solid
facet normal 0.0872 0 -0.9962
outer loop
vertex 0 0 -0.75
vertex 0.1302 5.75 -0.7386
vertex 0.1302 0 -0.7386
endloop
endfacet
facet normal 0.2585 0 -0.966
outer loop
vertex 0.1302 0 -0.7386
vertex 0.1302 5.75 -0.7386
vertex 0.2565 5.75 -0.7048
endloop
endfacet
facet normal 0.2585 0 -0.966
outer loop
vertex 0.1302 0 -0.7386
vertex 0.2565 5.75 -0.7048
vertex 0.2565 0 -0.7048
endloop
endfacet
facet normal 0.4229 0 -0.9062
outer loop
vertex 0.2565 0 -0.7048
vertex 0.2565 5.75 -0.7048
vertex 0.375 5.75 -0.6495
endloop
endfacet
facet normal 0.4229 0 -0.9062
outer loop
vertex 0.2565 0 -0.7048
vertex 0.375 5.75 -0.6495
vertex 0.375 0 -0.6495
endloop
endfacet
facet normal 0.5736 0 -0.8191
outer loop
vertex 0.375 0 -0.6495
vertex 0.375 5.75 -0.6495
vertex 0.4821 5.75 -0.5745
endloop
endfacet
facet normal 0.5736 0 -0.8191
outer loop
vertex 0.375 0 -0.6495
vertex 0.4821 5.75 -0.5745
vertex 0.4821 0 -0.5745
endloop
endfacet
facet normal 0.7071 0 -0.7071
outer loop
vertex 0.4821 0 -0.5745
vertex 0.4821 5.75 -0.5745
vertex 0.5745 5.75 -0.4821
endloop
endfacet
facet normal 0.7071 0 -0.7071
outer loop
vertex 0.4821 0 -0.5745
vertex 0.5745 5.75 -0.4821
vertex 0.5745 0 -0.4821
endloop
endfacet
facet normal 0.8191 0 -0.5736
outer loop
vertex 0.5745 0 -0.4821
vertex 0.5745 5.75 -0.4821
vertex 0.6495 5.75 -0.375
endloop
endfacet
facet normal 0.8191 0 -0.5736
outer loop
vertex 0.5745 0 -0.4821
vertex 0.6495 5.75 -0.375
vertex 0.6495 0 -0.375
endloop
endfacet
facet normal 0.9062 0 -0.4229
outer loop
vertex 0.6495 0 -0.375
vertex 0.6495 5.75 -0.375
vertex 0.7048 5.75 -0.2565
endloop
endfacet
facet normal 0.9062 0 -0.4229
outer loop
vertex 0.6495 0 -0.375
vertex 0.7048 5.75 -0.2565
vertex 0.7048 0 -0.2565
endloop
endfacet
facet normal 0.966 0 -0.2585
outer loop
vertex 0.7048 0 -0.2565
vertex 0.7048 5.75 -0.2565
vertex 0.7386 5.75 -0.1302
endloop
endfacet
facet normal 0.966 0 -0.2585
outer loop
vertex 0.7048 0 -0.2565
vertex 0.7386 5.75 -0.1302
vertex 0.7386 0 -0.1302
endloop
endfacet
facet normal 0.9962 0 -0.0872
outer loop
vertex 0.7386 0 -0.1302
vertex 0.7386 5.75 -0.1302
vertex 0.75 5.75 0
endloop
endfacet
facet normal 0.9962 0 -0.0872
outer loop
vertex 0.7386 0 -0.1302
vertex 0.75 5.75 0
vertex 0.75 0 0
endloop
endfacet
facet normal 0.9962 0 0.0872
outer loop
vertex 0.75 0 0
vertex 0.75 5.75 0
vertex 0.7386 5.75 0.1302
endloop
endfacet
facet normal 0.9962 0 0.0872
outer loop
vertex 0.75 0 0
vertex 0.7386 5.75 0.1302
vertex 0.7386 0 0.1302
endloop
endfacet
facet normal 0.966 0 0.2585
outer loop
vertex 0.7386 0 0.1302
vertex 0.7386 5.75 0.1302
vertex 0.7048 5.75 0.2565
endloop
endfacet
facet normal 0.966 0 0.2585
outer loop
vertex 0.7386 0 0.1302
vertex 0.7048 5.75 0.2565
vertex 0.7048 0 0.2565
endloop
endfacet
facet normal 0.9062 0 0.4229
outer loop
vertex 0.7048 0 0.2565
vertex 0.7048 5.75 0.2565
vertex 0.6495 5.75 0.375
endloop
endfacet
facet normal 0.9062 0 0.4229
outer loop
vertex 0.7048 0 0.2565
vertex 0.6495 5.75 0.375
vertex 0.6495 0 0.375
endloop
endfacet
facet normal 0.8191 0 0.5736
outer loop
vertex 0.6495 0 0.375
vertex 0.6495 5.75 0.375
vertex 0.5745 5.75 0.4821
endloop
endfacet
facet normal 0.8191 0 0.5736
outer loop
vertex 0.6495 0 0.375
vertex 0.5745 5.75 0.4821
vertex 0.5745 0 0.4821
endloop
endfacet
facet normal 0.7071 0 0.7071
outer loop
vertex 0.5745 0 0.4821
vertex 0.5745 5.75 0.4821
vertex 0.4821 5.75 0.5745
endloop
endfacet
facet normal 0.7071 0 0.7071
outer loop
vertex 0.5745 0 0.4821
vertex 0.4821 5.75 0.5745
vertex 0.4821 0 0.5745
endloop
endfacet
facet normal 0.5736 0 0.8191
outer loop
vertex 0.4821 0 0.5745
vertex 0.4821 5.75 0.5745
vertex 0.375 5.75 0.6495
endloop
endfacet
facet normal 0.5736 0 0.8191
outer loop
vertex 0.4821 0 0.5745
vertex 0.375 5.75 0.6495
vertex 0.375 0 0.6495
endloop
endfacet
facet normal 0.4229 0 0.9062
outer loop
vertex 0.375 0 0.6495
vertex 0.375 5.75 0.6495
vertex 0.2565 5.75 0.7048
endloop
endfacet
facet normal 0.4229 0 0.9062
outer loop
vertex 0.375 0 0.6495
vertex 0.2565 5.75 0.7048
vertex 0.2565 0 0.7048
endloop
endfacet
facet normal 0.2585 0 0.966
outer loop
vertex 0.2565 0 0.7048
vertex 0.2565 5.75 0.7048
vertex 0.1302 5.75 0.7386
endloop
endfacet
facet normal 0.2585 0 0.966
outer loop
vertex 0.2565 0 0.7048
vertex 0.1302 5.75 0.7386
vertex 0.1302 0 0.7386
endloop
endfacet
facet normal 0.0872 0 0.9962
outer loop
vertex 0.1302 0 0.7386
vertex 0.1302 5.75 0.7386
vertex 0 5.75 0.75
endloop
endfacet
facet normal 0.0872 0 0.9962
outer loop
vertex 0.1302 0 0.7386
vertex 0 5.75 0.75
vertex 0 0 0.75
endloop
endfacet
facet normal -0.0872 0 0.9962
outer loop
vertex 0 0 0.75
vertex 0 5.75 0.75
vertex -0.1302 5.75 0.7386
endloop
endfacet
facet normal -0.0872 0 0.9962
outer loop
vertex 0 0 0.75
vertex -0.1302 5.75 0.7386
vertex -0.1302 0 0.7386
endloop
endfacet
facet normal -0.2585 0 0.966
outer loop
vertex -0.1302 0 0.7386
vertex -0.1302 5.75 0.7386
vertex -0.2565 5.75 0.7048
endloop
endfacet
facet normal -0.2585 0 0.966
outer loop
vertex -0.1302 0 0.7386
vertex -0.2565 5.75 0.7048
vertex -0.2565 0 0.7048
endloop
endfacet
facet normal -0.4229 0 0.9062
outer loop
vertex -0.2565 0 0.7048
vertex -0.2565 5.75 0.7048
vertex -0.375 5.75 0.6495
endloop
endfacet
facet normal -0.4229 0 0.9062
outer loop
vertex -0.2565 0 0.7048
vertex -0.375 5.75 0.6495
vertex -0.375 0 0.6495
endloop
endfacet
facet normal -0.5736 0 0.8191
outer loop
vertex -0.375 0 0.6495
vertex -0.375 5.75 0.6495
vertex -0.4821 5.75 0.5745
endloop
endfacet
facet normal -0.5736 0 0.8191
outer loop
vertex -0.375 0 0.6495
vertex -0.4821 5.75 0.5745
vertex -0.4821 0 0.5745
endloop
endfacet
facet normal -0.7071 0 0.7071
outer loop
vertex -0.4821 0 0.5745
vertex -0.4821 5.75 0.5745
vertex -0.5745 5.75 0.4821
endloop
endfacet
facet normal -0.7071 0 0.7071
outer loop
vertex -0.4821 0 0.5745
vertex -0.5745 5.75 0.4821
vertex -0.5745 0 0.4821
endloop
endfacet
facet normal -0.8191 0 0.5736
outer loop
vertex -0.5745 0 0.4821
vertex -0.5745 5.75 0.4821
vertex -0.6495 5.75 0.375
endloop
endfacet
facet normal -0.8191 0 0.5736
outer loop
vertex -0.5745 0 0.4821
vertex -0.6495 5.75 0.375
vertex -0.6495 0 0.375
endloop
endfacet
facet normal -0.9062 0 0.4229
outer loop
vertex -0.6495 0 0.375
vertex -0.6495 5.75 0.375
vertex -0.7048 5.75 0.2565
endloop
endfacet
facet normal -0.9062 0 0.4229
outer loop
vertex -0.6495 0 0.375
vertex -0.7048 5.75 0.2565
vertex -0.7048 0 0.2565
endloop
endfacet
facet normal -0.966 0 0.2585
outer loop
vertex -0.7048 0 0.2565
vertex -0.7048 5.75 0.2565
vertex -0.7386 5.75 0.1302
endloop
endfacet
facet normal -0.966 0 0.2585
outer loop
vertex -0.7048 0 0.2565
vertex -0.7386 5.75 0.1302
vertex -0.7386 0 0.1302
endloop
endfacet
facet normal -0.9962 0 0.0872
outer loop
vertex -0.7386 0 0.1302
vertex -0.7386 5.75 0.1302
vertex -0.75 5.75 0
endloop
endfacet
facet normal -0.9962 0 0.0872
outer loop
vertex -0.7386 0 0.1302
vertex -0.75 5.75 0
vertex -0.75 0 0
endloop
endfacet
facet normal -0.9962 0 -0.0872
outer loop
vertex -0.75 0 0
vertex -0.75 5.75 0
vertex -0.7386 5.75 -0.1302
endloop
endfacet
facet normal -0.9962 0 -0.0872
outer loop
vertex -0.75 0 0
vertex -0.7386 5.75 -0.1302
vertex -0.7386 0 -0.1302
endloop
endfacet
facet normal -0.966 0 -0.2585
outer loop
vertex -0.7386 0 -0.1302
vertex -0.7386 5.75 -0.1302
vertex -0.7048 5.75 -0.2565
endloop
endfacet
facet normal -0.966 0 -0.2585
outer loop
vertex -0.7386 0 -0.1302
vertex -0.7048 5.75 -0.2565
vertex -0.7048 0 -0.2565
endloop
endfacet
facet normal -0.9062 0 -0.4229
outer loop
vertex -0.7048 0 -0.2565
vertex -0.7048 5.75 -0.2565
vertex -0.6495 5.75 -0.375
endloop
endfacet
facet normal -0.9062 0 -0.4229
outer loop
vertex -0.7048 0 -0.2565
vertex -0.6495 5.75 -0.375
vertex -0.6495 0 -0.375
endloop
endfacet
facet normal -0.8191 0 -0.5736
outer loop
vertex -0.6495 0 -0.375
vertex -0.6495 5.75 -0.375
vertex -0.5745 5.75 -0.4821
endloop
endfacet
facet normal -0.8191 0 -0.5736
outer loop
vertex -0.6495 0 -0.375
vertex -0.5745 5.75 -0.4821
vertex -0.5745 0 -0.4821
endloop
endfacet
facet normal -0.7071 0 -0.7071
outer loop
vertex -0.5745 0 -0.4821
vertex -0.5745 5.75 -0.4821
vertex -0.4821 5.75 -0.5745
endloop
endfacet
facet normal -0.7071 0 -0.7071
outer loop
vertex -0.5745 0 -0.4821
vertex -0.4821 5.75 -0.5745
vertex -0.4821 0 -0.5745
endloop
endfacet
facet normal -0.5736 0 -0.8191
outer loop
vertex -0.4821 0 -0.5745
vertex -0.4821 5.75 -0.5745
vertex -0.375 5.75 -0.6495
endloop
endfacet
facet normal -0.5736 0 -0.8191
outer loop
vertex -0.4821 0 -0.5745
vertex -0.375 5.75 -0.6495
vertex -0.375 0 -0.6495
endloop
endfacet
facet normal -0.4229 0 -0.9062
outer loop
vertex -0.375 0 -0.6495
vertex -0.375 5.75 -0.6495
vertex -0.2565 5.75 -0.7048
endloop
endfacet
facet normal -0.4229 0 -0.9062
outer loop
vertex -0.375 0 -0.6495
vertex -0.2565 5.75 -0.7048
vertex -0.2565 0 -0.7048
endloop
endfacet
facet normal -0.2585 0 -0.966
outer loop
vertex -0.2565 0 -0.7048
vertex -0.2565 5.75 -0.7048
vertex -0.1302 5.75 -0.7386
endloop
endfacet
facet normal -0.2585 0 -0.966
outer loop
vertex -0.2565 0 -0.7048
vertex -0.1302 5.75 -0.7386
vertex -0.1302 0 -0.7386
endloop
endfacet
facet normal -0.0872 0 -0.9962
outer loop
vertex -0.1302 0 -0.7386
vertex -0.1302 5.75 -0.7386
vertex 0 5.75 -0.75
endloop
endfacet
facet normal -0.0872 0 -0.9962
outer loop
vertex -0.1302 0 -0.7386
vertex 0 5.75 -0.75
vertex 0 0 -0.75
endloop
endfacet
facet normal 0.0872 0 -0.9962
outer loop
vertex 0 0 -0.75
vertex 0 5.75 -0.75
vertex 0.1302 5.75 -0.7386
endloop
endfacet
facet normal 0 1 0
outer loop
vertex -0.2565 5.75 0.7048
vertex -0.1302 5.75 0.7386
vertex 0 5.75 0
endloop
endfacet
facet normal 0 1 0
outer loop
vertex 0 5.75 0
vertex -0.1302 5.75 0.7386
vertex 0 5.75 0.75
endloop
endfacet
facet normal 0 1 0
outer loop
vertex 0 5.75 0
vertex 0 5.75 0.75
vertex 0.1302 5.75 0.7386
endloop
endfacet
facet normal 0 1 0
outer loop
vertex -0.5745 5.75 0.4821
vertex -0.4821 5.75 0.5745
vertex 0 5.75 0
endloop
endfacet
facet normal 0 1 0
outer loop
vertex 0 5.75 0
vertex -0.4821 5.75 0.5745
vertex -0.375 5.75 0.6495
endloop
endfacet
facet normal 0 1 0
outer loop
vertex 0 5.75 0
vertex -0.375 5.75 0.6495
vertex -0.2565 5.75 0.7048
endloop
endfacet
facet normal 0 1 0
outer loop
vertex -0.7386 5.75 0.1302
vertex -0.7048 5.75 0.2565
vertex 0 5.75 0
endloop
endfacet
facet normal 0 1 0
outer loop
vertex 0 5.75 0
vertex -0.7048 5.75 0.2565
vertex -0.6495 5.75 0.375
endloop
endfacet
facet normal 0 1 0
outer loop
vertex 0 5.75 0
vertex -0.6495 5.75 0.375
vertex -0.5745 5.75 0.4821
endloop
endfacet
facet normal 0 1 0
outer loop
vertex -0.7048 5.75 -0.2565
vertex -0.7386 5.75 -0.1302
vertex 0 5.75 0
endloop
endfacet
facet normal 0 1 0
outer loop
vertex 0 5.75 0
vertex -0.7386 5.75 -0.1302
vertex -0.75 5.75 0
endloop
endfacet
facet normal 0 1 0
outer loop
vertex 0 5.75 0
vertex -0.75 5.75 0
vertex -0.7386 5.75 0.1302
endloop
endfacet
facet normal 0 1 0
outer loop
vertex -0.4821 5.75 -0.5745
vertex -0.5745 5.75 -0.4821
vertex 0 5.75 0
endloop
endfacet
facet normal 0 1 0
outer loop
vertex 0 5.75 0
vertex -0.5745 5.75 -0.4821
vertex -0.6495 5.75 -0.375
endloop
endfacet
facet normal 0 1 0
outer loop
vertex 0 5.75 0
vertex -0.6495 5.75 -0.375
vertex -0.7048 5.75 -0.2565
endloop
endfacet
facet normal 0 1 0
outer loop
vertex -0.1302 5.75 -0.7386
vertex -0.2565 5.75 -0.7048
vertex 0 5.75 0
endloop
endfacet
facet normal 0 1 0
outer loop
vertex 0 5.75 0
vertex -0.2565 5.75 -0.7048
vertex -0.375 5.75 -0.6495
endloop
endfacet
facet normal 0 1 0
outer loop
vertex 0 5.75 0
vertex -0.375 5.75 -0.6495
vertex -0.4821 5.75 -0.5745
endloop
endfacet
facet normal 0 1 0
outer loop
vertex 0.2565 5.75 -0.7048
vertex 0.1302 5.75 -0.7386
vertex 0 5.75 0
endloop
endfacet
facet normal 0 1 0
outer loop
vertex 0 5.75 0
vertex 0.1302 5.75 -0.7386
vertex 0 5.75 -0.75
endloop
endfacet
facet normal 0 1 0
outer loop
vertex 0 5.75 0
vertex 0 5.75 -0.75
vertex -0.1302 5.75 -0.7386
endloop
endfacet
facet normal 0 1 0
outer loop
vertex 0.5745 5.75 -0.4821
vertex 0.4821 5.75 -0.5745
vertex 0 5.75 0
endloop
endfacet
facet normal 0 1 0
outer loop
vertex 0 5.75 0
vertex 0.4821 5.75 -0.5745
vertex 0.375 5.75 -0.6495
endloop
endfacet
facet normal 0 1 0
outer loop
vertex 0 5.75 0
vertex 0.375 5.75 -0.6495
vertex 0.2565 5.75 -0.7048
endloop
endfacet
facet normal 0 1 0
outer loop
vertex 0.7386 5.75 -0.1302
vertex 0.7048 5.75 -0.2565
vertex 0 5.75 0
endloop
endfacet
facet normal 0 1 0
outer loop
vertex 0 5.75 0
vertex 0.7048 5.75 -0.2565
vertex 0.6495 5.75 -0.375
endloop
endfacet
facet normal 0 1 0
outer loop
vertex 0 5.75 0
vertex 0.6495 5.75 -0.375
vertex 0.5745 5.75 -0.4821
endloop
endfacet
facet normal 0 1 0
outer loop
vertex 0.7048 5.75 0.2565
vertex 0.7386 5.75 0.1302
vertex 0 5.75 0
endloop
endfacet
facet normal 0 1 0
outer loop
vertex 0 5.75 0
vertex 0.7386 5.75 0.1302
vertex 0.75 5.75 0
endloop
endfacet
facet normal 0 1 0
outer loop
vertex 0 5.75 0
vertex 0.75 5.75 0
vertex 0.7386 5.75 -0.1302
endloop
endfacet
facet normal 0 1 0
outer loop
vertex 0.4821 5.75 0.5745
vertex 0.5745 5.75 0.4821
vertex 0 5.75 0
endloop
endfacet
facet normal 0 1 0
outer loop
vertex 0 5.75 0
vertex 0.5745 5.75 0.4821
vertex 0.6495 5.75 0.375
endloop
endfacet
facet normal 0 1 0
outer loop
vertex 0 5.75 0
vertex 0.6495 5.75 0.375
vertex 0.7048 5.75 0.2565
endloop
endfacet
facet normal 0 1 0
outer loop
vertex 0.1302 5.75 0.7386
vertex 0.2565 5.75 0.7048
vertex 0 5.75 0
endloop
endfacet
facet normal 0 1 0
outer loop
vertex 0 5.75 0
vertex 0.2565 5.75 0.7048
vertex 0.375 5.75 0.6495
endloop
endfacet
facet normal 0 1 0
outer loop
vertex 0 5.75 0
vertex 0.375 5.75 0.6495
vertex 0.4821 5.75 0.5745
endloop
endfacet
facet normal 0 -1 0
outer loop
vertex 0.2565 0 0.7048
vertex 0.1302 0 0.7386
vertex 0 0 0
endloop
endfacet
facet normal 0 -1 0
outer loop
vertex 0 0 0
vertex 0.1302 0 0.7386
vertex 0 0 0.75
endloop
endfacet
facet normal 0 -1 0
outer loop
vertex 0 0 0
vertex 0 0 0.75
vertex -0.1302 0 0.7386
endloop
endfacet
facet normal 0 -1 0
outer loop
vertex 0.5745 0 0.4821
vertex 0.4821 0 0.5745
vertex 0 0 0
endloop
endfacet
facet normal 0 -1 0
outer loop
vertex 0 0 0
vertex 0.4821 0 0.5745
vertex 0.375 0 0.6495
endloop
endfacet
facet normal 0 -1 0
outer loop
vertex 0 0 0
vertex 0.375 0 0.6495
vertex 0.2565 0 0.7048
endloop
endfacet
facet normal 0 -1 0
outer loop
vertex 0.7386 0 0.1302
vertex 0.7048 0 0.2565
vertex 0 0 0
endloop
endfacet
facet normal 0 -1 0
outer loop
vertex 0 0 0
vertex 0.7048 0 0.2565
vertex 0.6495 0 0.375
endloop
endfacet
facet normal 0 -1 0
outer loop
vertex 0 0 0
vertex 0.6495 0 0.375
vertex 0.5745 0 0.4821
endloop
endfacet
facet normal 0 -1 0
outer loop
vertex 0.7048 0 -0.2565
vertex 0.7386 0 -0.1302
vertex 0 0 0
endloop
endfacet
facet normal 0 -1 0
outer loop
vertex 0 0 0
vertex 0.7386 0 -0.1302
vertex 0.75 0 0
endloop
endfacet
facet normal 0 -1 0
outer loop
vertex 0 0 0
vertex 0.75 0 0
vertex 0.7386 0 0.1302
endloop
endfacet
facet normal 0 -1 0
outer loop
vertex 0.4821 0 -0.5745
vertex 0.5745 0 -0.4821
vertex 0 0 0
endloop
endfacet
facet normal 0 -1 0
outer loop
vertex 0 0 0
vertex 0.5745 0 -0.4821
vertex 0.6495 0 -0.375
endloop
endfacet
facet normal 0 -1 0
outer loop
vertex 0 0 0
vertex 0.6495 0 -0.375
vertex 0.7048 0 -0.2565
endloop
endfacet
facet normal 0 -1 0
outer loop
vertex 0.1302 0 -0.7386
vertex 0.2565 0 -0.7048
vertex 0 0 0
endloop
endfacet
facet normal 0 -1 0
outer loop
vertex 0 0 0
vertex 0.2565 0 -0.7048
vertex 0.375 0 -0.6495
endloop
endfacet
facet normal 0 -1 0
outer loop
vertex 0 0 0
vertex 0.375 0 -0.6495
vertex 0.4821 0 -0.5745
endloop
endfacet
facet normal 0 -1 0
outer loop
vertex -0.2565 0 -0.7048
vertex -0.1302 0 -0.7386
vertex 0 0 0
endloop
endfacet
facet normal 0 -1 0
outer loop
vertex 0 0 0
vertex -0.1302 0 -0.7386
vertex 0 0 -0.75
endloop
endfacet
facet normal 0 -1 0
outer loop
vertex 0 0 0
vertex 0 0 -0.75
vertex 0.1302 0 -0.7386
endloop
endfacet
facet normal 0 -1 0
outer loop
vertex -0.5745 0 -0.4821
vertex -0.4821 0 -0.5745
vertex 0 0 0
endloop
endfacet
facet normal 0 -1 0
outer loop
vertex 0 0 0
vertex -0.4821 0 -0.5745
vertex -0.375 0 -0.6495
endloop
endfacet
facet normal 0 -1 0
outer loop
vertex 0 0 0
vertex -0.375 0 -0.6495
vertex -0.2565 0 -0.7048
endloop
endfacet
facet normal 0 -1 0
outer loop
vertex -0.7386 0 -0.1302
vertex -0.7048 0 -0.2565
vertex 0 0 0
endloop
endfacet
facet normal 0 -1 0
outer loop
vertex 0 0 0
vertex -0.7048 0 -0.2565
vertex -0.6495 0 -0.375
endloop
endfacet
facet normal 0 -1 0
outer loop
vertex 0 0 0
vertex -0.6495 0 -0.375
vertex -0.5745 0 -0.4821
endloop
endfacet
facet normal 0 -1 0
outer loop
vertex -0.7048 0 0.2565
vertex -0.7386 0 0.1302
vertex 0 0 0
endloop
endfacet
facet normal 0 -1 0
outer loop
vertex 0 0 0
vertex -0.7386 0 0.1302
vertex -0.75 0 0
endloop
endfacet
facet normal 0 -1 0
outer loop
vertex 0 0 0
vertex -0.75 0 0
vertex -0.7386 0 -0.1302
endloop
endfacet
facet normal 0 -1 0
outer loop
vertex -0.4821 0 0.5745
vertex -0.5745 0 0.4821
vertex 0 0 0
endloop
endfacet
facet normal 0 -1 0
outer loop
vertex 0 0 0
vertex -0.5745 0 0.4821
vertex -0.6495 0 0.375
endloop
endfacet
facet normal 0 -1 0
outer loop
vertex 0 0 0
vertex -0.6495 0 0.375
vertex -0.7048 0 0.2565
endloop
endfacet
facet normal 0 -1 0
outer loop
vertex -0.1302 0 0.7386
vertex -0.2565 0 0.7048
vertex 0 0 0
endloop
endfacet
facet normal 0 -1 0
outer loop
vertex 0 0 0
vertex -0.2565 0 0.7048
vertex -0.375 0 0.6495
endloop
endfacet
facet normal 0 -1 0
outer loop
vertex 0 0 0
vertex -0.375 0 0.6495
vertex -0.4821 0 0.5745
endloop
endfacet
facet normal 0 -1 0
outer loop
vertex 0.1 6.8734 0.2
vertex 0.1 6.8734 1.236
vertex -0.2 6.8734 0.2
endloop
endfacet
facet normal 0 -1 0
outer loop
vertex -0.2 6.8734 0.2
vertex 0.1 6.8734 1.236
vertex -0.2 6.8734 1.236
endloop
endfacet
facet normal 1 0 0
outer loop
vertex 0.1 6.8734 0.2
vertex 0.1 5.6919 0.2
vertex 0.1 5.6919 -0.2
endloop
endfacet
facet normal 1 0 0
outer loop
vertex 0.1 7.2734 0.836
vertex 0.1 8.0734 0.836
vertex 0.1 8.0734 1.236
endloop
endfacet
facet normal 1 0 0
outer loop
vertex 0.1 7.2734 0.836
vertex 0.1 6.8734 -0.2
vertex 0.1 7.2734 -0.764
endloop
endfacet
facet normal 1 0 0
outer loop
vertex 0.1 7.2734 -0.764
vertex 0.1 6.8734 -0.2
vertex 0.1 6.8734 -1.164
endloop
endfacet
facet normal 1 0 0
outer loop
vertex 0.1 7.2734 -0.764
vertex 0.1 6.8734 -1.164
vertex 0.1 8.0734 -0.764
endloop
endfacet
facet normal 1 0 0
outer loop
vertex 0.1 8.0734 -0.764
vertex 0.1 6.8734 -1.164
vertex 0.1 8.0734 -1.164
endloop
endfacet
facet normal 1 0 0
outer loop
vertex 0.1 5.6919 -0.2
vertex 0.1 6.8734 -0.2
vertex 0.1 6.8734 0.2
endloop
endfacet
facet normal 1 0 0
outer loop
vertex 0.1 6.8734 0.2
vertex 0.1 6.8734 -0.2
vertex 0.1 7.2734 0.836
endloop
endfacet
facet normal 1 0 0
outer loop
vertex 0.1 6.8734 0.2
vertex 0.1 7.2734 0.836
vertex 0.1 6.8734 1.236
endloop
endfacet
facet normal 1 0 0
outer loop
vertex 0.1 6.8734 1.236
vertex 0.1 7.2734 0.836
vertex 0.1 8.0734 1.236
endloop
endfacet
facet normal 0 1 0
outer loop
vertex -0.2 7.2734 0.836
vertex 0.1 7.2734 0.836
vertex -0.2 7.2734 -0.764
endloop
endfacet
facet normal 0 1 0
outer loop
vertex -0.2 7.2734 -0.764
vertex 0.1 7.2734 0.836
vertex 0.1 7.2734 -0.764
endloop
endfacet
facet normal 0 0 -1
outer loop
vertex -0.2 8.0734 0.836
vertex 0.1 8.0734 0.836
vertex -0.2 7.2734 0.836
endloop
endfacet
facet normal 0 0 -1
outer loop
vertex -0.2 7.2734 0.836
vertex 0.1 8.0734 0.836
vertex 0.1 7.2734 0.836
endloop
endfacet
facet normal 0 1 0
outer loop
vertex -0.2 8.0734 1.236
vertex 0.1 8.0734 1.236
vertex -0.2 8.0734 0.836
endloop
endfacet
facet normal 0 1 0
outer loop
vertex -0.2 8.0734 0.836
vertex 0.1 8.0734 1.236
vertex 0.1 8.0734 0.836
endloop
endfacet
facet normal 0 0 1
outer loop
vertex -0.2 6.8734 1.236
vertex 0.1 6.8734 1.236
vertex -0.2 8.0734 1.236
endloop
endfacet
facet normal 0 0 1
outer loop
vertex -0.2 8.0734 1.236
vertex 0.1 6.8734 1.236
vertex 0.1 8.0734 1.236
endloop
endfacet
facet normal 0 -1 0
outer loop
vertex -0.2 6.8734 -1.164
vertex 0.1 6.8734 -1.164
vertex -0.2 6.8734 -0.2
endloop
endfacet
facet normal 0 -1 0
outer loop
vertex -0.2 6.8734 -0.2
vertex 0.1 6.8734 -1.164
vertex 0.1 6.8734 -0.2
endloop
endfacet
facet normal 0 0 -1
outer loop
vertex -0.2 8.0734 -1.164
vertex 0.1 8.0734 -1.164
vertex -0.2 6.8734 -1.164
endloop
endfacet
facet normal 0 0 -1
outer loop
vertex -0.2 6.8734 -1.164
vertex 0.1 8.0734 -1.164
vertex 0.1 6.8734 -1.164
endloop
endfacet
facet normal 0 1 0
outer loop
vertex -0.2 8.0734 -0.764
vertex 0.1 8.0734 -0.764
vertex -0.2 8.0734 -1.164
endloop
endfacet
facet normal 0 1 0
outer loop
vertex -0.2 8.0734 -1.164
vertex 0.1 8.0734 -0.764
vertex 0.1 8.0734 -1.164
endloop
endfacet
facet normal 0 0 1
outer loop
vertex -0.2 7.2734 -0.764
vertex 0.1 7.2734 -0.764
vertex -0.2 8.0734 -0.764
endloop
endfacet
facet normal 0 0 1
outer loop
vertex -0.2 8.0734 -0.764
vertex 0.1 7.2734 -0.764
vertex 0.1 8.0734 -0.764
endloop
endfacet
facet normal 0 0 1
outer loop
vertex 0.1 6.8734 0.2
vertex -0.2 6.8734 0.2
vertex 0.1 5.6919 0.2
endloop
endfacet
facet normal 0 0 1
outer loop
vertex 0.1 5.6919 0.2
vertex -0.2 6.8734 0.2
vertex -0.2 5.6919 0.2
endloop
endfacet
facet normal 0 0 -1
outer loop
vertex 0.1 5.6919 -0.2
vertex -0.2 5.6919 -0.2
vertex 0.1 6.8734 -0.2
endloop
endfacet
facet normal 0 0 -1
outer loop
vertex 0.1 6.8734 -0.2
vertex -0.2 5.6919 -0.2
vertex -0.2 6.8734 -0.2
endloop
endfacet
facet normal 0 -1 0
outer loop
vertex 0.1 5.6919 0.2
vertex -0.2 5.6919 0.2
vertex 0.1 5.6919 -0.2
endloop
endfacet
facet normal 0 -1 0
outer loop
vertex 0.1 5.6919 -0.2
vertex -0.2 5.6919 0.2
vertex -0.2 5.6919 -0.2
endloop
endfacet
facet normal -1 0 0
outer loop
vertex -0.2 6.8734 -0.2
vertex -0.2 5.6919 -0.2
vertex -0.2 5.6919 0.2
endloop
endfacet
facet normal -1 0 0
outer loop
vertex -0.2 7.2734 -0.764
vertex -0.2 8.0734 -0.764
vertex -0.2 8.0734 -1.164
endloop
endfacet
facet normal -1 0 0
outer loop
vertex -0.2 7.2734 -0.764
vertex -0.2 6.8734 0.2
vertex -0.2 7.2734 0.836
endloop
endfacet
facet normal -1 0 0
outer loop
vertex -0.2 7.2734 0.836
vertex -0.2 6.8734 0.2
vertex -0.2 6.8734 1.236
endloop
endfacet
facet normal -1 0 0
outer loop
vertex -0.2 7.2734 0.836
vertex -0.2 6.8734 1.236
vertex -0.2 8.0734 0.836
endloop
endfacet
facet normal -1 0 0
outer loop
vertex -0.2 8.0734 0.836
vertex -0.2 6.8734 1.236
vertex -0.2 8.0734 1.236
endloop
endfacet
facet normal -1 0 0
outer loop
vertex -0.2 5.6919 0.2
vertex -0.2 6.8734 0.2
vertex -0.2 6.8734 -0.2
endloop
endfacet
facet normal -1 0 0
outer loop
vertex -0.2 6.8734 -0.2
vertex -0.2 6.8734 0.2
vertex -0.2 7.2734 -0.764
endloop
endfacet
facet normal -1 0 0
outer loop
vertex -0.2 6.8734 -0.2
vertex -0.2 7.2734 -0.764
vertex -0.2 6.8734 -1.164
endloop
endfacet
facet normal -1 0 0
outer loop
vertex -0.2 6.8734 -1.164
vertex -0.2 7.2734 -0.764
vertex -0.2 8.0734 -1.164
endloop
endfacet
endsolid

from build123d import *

# Parameters (mm, degrees)
SKETCH_1_R           = 0.75
EXTRUDE_1_DEPTH      = 5.75
EXTRUDE_3_DEPTH      = 0.1
EXTRUDE_3_DEPTH_BACK = 0.2


with BuildPart() as part:
    # 草图1 → 凸台-拉伸1 (new body)
    with BuildSketch(Plane(origin=(0, 0, 0), x_dir=(1, 0, 0), z_dir=(0, 1, 0))):
        Circle(SKETCH_1_R)
    extrude(amount=EXTRUDE_1_DEPTH)


with BuildPart() as body_2:
    # 草图2 → 凸台-拉伸3 (new body, two sides)
    with BuildSketch(Plane(origin=(0, 0, 0), x_dir=(0, 0, -1), z_dir=(1, 0, 0))) as extrude_3_sk:
        Polygon((-1.235982944, 8.073377801), (-1.235982944, 6.873377801), (-0.2, 6.873377801), (-0.2, 5.691937795), (0.2, 5.691937795), (0.2, 6.873377801), (1.164017056, 6.873377801), (1.164017056, 8.073377801), (0.764017056, 8.073377801), (0.764017056, 7.273377801), (-0.835982944, 7.273377801), (-0.835982944, 8.073377801), align=None)
    extrude(amount=EXTRUDE_3_DEPTH)
    extrude(extrude_3_sk.sketch, amount=-EXTRUDE_3_DEPTH_BACK)


solid = Compound([part.part, body_2.part])
